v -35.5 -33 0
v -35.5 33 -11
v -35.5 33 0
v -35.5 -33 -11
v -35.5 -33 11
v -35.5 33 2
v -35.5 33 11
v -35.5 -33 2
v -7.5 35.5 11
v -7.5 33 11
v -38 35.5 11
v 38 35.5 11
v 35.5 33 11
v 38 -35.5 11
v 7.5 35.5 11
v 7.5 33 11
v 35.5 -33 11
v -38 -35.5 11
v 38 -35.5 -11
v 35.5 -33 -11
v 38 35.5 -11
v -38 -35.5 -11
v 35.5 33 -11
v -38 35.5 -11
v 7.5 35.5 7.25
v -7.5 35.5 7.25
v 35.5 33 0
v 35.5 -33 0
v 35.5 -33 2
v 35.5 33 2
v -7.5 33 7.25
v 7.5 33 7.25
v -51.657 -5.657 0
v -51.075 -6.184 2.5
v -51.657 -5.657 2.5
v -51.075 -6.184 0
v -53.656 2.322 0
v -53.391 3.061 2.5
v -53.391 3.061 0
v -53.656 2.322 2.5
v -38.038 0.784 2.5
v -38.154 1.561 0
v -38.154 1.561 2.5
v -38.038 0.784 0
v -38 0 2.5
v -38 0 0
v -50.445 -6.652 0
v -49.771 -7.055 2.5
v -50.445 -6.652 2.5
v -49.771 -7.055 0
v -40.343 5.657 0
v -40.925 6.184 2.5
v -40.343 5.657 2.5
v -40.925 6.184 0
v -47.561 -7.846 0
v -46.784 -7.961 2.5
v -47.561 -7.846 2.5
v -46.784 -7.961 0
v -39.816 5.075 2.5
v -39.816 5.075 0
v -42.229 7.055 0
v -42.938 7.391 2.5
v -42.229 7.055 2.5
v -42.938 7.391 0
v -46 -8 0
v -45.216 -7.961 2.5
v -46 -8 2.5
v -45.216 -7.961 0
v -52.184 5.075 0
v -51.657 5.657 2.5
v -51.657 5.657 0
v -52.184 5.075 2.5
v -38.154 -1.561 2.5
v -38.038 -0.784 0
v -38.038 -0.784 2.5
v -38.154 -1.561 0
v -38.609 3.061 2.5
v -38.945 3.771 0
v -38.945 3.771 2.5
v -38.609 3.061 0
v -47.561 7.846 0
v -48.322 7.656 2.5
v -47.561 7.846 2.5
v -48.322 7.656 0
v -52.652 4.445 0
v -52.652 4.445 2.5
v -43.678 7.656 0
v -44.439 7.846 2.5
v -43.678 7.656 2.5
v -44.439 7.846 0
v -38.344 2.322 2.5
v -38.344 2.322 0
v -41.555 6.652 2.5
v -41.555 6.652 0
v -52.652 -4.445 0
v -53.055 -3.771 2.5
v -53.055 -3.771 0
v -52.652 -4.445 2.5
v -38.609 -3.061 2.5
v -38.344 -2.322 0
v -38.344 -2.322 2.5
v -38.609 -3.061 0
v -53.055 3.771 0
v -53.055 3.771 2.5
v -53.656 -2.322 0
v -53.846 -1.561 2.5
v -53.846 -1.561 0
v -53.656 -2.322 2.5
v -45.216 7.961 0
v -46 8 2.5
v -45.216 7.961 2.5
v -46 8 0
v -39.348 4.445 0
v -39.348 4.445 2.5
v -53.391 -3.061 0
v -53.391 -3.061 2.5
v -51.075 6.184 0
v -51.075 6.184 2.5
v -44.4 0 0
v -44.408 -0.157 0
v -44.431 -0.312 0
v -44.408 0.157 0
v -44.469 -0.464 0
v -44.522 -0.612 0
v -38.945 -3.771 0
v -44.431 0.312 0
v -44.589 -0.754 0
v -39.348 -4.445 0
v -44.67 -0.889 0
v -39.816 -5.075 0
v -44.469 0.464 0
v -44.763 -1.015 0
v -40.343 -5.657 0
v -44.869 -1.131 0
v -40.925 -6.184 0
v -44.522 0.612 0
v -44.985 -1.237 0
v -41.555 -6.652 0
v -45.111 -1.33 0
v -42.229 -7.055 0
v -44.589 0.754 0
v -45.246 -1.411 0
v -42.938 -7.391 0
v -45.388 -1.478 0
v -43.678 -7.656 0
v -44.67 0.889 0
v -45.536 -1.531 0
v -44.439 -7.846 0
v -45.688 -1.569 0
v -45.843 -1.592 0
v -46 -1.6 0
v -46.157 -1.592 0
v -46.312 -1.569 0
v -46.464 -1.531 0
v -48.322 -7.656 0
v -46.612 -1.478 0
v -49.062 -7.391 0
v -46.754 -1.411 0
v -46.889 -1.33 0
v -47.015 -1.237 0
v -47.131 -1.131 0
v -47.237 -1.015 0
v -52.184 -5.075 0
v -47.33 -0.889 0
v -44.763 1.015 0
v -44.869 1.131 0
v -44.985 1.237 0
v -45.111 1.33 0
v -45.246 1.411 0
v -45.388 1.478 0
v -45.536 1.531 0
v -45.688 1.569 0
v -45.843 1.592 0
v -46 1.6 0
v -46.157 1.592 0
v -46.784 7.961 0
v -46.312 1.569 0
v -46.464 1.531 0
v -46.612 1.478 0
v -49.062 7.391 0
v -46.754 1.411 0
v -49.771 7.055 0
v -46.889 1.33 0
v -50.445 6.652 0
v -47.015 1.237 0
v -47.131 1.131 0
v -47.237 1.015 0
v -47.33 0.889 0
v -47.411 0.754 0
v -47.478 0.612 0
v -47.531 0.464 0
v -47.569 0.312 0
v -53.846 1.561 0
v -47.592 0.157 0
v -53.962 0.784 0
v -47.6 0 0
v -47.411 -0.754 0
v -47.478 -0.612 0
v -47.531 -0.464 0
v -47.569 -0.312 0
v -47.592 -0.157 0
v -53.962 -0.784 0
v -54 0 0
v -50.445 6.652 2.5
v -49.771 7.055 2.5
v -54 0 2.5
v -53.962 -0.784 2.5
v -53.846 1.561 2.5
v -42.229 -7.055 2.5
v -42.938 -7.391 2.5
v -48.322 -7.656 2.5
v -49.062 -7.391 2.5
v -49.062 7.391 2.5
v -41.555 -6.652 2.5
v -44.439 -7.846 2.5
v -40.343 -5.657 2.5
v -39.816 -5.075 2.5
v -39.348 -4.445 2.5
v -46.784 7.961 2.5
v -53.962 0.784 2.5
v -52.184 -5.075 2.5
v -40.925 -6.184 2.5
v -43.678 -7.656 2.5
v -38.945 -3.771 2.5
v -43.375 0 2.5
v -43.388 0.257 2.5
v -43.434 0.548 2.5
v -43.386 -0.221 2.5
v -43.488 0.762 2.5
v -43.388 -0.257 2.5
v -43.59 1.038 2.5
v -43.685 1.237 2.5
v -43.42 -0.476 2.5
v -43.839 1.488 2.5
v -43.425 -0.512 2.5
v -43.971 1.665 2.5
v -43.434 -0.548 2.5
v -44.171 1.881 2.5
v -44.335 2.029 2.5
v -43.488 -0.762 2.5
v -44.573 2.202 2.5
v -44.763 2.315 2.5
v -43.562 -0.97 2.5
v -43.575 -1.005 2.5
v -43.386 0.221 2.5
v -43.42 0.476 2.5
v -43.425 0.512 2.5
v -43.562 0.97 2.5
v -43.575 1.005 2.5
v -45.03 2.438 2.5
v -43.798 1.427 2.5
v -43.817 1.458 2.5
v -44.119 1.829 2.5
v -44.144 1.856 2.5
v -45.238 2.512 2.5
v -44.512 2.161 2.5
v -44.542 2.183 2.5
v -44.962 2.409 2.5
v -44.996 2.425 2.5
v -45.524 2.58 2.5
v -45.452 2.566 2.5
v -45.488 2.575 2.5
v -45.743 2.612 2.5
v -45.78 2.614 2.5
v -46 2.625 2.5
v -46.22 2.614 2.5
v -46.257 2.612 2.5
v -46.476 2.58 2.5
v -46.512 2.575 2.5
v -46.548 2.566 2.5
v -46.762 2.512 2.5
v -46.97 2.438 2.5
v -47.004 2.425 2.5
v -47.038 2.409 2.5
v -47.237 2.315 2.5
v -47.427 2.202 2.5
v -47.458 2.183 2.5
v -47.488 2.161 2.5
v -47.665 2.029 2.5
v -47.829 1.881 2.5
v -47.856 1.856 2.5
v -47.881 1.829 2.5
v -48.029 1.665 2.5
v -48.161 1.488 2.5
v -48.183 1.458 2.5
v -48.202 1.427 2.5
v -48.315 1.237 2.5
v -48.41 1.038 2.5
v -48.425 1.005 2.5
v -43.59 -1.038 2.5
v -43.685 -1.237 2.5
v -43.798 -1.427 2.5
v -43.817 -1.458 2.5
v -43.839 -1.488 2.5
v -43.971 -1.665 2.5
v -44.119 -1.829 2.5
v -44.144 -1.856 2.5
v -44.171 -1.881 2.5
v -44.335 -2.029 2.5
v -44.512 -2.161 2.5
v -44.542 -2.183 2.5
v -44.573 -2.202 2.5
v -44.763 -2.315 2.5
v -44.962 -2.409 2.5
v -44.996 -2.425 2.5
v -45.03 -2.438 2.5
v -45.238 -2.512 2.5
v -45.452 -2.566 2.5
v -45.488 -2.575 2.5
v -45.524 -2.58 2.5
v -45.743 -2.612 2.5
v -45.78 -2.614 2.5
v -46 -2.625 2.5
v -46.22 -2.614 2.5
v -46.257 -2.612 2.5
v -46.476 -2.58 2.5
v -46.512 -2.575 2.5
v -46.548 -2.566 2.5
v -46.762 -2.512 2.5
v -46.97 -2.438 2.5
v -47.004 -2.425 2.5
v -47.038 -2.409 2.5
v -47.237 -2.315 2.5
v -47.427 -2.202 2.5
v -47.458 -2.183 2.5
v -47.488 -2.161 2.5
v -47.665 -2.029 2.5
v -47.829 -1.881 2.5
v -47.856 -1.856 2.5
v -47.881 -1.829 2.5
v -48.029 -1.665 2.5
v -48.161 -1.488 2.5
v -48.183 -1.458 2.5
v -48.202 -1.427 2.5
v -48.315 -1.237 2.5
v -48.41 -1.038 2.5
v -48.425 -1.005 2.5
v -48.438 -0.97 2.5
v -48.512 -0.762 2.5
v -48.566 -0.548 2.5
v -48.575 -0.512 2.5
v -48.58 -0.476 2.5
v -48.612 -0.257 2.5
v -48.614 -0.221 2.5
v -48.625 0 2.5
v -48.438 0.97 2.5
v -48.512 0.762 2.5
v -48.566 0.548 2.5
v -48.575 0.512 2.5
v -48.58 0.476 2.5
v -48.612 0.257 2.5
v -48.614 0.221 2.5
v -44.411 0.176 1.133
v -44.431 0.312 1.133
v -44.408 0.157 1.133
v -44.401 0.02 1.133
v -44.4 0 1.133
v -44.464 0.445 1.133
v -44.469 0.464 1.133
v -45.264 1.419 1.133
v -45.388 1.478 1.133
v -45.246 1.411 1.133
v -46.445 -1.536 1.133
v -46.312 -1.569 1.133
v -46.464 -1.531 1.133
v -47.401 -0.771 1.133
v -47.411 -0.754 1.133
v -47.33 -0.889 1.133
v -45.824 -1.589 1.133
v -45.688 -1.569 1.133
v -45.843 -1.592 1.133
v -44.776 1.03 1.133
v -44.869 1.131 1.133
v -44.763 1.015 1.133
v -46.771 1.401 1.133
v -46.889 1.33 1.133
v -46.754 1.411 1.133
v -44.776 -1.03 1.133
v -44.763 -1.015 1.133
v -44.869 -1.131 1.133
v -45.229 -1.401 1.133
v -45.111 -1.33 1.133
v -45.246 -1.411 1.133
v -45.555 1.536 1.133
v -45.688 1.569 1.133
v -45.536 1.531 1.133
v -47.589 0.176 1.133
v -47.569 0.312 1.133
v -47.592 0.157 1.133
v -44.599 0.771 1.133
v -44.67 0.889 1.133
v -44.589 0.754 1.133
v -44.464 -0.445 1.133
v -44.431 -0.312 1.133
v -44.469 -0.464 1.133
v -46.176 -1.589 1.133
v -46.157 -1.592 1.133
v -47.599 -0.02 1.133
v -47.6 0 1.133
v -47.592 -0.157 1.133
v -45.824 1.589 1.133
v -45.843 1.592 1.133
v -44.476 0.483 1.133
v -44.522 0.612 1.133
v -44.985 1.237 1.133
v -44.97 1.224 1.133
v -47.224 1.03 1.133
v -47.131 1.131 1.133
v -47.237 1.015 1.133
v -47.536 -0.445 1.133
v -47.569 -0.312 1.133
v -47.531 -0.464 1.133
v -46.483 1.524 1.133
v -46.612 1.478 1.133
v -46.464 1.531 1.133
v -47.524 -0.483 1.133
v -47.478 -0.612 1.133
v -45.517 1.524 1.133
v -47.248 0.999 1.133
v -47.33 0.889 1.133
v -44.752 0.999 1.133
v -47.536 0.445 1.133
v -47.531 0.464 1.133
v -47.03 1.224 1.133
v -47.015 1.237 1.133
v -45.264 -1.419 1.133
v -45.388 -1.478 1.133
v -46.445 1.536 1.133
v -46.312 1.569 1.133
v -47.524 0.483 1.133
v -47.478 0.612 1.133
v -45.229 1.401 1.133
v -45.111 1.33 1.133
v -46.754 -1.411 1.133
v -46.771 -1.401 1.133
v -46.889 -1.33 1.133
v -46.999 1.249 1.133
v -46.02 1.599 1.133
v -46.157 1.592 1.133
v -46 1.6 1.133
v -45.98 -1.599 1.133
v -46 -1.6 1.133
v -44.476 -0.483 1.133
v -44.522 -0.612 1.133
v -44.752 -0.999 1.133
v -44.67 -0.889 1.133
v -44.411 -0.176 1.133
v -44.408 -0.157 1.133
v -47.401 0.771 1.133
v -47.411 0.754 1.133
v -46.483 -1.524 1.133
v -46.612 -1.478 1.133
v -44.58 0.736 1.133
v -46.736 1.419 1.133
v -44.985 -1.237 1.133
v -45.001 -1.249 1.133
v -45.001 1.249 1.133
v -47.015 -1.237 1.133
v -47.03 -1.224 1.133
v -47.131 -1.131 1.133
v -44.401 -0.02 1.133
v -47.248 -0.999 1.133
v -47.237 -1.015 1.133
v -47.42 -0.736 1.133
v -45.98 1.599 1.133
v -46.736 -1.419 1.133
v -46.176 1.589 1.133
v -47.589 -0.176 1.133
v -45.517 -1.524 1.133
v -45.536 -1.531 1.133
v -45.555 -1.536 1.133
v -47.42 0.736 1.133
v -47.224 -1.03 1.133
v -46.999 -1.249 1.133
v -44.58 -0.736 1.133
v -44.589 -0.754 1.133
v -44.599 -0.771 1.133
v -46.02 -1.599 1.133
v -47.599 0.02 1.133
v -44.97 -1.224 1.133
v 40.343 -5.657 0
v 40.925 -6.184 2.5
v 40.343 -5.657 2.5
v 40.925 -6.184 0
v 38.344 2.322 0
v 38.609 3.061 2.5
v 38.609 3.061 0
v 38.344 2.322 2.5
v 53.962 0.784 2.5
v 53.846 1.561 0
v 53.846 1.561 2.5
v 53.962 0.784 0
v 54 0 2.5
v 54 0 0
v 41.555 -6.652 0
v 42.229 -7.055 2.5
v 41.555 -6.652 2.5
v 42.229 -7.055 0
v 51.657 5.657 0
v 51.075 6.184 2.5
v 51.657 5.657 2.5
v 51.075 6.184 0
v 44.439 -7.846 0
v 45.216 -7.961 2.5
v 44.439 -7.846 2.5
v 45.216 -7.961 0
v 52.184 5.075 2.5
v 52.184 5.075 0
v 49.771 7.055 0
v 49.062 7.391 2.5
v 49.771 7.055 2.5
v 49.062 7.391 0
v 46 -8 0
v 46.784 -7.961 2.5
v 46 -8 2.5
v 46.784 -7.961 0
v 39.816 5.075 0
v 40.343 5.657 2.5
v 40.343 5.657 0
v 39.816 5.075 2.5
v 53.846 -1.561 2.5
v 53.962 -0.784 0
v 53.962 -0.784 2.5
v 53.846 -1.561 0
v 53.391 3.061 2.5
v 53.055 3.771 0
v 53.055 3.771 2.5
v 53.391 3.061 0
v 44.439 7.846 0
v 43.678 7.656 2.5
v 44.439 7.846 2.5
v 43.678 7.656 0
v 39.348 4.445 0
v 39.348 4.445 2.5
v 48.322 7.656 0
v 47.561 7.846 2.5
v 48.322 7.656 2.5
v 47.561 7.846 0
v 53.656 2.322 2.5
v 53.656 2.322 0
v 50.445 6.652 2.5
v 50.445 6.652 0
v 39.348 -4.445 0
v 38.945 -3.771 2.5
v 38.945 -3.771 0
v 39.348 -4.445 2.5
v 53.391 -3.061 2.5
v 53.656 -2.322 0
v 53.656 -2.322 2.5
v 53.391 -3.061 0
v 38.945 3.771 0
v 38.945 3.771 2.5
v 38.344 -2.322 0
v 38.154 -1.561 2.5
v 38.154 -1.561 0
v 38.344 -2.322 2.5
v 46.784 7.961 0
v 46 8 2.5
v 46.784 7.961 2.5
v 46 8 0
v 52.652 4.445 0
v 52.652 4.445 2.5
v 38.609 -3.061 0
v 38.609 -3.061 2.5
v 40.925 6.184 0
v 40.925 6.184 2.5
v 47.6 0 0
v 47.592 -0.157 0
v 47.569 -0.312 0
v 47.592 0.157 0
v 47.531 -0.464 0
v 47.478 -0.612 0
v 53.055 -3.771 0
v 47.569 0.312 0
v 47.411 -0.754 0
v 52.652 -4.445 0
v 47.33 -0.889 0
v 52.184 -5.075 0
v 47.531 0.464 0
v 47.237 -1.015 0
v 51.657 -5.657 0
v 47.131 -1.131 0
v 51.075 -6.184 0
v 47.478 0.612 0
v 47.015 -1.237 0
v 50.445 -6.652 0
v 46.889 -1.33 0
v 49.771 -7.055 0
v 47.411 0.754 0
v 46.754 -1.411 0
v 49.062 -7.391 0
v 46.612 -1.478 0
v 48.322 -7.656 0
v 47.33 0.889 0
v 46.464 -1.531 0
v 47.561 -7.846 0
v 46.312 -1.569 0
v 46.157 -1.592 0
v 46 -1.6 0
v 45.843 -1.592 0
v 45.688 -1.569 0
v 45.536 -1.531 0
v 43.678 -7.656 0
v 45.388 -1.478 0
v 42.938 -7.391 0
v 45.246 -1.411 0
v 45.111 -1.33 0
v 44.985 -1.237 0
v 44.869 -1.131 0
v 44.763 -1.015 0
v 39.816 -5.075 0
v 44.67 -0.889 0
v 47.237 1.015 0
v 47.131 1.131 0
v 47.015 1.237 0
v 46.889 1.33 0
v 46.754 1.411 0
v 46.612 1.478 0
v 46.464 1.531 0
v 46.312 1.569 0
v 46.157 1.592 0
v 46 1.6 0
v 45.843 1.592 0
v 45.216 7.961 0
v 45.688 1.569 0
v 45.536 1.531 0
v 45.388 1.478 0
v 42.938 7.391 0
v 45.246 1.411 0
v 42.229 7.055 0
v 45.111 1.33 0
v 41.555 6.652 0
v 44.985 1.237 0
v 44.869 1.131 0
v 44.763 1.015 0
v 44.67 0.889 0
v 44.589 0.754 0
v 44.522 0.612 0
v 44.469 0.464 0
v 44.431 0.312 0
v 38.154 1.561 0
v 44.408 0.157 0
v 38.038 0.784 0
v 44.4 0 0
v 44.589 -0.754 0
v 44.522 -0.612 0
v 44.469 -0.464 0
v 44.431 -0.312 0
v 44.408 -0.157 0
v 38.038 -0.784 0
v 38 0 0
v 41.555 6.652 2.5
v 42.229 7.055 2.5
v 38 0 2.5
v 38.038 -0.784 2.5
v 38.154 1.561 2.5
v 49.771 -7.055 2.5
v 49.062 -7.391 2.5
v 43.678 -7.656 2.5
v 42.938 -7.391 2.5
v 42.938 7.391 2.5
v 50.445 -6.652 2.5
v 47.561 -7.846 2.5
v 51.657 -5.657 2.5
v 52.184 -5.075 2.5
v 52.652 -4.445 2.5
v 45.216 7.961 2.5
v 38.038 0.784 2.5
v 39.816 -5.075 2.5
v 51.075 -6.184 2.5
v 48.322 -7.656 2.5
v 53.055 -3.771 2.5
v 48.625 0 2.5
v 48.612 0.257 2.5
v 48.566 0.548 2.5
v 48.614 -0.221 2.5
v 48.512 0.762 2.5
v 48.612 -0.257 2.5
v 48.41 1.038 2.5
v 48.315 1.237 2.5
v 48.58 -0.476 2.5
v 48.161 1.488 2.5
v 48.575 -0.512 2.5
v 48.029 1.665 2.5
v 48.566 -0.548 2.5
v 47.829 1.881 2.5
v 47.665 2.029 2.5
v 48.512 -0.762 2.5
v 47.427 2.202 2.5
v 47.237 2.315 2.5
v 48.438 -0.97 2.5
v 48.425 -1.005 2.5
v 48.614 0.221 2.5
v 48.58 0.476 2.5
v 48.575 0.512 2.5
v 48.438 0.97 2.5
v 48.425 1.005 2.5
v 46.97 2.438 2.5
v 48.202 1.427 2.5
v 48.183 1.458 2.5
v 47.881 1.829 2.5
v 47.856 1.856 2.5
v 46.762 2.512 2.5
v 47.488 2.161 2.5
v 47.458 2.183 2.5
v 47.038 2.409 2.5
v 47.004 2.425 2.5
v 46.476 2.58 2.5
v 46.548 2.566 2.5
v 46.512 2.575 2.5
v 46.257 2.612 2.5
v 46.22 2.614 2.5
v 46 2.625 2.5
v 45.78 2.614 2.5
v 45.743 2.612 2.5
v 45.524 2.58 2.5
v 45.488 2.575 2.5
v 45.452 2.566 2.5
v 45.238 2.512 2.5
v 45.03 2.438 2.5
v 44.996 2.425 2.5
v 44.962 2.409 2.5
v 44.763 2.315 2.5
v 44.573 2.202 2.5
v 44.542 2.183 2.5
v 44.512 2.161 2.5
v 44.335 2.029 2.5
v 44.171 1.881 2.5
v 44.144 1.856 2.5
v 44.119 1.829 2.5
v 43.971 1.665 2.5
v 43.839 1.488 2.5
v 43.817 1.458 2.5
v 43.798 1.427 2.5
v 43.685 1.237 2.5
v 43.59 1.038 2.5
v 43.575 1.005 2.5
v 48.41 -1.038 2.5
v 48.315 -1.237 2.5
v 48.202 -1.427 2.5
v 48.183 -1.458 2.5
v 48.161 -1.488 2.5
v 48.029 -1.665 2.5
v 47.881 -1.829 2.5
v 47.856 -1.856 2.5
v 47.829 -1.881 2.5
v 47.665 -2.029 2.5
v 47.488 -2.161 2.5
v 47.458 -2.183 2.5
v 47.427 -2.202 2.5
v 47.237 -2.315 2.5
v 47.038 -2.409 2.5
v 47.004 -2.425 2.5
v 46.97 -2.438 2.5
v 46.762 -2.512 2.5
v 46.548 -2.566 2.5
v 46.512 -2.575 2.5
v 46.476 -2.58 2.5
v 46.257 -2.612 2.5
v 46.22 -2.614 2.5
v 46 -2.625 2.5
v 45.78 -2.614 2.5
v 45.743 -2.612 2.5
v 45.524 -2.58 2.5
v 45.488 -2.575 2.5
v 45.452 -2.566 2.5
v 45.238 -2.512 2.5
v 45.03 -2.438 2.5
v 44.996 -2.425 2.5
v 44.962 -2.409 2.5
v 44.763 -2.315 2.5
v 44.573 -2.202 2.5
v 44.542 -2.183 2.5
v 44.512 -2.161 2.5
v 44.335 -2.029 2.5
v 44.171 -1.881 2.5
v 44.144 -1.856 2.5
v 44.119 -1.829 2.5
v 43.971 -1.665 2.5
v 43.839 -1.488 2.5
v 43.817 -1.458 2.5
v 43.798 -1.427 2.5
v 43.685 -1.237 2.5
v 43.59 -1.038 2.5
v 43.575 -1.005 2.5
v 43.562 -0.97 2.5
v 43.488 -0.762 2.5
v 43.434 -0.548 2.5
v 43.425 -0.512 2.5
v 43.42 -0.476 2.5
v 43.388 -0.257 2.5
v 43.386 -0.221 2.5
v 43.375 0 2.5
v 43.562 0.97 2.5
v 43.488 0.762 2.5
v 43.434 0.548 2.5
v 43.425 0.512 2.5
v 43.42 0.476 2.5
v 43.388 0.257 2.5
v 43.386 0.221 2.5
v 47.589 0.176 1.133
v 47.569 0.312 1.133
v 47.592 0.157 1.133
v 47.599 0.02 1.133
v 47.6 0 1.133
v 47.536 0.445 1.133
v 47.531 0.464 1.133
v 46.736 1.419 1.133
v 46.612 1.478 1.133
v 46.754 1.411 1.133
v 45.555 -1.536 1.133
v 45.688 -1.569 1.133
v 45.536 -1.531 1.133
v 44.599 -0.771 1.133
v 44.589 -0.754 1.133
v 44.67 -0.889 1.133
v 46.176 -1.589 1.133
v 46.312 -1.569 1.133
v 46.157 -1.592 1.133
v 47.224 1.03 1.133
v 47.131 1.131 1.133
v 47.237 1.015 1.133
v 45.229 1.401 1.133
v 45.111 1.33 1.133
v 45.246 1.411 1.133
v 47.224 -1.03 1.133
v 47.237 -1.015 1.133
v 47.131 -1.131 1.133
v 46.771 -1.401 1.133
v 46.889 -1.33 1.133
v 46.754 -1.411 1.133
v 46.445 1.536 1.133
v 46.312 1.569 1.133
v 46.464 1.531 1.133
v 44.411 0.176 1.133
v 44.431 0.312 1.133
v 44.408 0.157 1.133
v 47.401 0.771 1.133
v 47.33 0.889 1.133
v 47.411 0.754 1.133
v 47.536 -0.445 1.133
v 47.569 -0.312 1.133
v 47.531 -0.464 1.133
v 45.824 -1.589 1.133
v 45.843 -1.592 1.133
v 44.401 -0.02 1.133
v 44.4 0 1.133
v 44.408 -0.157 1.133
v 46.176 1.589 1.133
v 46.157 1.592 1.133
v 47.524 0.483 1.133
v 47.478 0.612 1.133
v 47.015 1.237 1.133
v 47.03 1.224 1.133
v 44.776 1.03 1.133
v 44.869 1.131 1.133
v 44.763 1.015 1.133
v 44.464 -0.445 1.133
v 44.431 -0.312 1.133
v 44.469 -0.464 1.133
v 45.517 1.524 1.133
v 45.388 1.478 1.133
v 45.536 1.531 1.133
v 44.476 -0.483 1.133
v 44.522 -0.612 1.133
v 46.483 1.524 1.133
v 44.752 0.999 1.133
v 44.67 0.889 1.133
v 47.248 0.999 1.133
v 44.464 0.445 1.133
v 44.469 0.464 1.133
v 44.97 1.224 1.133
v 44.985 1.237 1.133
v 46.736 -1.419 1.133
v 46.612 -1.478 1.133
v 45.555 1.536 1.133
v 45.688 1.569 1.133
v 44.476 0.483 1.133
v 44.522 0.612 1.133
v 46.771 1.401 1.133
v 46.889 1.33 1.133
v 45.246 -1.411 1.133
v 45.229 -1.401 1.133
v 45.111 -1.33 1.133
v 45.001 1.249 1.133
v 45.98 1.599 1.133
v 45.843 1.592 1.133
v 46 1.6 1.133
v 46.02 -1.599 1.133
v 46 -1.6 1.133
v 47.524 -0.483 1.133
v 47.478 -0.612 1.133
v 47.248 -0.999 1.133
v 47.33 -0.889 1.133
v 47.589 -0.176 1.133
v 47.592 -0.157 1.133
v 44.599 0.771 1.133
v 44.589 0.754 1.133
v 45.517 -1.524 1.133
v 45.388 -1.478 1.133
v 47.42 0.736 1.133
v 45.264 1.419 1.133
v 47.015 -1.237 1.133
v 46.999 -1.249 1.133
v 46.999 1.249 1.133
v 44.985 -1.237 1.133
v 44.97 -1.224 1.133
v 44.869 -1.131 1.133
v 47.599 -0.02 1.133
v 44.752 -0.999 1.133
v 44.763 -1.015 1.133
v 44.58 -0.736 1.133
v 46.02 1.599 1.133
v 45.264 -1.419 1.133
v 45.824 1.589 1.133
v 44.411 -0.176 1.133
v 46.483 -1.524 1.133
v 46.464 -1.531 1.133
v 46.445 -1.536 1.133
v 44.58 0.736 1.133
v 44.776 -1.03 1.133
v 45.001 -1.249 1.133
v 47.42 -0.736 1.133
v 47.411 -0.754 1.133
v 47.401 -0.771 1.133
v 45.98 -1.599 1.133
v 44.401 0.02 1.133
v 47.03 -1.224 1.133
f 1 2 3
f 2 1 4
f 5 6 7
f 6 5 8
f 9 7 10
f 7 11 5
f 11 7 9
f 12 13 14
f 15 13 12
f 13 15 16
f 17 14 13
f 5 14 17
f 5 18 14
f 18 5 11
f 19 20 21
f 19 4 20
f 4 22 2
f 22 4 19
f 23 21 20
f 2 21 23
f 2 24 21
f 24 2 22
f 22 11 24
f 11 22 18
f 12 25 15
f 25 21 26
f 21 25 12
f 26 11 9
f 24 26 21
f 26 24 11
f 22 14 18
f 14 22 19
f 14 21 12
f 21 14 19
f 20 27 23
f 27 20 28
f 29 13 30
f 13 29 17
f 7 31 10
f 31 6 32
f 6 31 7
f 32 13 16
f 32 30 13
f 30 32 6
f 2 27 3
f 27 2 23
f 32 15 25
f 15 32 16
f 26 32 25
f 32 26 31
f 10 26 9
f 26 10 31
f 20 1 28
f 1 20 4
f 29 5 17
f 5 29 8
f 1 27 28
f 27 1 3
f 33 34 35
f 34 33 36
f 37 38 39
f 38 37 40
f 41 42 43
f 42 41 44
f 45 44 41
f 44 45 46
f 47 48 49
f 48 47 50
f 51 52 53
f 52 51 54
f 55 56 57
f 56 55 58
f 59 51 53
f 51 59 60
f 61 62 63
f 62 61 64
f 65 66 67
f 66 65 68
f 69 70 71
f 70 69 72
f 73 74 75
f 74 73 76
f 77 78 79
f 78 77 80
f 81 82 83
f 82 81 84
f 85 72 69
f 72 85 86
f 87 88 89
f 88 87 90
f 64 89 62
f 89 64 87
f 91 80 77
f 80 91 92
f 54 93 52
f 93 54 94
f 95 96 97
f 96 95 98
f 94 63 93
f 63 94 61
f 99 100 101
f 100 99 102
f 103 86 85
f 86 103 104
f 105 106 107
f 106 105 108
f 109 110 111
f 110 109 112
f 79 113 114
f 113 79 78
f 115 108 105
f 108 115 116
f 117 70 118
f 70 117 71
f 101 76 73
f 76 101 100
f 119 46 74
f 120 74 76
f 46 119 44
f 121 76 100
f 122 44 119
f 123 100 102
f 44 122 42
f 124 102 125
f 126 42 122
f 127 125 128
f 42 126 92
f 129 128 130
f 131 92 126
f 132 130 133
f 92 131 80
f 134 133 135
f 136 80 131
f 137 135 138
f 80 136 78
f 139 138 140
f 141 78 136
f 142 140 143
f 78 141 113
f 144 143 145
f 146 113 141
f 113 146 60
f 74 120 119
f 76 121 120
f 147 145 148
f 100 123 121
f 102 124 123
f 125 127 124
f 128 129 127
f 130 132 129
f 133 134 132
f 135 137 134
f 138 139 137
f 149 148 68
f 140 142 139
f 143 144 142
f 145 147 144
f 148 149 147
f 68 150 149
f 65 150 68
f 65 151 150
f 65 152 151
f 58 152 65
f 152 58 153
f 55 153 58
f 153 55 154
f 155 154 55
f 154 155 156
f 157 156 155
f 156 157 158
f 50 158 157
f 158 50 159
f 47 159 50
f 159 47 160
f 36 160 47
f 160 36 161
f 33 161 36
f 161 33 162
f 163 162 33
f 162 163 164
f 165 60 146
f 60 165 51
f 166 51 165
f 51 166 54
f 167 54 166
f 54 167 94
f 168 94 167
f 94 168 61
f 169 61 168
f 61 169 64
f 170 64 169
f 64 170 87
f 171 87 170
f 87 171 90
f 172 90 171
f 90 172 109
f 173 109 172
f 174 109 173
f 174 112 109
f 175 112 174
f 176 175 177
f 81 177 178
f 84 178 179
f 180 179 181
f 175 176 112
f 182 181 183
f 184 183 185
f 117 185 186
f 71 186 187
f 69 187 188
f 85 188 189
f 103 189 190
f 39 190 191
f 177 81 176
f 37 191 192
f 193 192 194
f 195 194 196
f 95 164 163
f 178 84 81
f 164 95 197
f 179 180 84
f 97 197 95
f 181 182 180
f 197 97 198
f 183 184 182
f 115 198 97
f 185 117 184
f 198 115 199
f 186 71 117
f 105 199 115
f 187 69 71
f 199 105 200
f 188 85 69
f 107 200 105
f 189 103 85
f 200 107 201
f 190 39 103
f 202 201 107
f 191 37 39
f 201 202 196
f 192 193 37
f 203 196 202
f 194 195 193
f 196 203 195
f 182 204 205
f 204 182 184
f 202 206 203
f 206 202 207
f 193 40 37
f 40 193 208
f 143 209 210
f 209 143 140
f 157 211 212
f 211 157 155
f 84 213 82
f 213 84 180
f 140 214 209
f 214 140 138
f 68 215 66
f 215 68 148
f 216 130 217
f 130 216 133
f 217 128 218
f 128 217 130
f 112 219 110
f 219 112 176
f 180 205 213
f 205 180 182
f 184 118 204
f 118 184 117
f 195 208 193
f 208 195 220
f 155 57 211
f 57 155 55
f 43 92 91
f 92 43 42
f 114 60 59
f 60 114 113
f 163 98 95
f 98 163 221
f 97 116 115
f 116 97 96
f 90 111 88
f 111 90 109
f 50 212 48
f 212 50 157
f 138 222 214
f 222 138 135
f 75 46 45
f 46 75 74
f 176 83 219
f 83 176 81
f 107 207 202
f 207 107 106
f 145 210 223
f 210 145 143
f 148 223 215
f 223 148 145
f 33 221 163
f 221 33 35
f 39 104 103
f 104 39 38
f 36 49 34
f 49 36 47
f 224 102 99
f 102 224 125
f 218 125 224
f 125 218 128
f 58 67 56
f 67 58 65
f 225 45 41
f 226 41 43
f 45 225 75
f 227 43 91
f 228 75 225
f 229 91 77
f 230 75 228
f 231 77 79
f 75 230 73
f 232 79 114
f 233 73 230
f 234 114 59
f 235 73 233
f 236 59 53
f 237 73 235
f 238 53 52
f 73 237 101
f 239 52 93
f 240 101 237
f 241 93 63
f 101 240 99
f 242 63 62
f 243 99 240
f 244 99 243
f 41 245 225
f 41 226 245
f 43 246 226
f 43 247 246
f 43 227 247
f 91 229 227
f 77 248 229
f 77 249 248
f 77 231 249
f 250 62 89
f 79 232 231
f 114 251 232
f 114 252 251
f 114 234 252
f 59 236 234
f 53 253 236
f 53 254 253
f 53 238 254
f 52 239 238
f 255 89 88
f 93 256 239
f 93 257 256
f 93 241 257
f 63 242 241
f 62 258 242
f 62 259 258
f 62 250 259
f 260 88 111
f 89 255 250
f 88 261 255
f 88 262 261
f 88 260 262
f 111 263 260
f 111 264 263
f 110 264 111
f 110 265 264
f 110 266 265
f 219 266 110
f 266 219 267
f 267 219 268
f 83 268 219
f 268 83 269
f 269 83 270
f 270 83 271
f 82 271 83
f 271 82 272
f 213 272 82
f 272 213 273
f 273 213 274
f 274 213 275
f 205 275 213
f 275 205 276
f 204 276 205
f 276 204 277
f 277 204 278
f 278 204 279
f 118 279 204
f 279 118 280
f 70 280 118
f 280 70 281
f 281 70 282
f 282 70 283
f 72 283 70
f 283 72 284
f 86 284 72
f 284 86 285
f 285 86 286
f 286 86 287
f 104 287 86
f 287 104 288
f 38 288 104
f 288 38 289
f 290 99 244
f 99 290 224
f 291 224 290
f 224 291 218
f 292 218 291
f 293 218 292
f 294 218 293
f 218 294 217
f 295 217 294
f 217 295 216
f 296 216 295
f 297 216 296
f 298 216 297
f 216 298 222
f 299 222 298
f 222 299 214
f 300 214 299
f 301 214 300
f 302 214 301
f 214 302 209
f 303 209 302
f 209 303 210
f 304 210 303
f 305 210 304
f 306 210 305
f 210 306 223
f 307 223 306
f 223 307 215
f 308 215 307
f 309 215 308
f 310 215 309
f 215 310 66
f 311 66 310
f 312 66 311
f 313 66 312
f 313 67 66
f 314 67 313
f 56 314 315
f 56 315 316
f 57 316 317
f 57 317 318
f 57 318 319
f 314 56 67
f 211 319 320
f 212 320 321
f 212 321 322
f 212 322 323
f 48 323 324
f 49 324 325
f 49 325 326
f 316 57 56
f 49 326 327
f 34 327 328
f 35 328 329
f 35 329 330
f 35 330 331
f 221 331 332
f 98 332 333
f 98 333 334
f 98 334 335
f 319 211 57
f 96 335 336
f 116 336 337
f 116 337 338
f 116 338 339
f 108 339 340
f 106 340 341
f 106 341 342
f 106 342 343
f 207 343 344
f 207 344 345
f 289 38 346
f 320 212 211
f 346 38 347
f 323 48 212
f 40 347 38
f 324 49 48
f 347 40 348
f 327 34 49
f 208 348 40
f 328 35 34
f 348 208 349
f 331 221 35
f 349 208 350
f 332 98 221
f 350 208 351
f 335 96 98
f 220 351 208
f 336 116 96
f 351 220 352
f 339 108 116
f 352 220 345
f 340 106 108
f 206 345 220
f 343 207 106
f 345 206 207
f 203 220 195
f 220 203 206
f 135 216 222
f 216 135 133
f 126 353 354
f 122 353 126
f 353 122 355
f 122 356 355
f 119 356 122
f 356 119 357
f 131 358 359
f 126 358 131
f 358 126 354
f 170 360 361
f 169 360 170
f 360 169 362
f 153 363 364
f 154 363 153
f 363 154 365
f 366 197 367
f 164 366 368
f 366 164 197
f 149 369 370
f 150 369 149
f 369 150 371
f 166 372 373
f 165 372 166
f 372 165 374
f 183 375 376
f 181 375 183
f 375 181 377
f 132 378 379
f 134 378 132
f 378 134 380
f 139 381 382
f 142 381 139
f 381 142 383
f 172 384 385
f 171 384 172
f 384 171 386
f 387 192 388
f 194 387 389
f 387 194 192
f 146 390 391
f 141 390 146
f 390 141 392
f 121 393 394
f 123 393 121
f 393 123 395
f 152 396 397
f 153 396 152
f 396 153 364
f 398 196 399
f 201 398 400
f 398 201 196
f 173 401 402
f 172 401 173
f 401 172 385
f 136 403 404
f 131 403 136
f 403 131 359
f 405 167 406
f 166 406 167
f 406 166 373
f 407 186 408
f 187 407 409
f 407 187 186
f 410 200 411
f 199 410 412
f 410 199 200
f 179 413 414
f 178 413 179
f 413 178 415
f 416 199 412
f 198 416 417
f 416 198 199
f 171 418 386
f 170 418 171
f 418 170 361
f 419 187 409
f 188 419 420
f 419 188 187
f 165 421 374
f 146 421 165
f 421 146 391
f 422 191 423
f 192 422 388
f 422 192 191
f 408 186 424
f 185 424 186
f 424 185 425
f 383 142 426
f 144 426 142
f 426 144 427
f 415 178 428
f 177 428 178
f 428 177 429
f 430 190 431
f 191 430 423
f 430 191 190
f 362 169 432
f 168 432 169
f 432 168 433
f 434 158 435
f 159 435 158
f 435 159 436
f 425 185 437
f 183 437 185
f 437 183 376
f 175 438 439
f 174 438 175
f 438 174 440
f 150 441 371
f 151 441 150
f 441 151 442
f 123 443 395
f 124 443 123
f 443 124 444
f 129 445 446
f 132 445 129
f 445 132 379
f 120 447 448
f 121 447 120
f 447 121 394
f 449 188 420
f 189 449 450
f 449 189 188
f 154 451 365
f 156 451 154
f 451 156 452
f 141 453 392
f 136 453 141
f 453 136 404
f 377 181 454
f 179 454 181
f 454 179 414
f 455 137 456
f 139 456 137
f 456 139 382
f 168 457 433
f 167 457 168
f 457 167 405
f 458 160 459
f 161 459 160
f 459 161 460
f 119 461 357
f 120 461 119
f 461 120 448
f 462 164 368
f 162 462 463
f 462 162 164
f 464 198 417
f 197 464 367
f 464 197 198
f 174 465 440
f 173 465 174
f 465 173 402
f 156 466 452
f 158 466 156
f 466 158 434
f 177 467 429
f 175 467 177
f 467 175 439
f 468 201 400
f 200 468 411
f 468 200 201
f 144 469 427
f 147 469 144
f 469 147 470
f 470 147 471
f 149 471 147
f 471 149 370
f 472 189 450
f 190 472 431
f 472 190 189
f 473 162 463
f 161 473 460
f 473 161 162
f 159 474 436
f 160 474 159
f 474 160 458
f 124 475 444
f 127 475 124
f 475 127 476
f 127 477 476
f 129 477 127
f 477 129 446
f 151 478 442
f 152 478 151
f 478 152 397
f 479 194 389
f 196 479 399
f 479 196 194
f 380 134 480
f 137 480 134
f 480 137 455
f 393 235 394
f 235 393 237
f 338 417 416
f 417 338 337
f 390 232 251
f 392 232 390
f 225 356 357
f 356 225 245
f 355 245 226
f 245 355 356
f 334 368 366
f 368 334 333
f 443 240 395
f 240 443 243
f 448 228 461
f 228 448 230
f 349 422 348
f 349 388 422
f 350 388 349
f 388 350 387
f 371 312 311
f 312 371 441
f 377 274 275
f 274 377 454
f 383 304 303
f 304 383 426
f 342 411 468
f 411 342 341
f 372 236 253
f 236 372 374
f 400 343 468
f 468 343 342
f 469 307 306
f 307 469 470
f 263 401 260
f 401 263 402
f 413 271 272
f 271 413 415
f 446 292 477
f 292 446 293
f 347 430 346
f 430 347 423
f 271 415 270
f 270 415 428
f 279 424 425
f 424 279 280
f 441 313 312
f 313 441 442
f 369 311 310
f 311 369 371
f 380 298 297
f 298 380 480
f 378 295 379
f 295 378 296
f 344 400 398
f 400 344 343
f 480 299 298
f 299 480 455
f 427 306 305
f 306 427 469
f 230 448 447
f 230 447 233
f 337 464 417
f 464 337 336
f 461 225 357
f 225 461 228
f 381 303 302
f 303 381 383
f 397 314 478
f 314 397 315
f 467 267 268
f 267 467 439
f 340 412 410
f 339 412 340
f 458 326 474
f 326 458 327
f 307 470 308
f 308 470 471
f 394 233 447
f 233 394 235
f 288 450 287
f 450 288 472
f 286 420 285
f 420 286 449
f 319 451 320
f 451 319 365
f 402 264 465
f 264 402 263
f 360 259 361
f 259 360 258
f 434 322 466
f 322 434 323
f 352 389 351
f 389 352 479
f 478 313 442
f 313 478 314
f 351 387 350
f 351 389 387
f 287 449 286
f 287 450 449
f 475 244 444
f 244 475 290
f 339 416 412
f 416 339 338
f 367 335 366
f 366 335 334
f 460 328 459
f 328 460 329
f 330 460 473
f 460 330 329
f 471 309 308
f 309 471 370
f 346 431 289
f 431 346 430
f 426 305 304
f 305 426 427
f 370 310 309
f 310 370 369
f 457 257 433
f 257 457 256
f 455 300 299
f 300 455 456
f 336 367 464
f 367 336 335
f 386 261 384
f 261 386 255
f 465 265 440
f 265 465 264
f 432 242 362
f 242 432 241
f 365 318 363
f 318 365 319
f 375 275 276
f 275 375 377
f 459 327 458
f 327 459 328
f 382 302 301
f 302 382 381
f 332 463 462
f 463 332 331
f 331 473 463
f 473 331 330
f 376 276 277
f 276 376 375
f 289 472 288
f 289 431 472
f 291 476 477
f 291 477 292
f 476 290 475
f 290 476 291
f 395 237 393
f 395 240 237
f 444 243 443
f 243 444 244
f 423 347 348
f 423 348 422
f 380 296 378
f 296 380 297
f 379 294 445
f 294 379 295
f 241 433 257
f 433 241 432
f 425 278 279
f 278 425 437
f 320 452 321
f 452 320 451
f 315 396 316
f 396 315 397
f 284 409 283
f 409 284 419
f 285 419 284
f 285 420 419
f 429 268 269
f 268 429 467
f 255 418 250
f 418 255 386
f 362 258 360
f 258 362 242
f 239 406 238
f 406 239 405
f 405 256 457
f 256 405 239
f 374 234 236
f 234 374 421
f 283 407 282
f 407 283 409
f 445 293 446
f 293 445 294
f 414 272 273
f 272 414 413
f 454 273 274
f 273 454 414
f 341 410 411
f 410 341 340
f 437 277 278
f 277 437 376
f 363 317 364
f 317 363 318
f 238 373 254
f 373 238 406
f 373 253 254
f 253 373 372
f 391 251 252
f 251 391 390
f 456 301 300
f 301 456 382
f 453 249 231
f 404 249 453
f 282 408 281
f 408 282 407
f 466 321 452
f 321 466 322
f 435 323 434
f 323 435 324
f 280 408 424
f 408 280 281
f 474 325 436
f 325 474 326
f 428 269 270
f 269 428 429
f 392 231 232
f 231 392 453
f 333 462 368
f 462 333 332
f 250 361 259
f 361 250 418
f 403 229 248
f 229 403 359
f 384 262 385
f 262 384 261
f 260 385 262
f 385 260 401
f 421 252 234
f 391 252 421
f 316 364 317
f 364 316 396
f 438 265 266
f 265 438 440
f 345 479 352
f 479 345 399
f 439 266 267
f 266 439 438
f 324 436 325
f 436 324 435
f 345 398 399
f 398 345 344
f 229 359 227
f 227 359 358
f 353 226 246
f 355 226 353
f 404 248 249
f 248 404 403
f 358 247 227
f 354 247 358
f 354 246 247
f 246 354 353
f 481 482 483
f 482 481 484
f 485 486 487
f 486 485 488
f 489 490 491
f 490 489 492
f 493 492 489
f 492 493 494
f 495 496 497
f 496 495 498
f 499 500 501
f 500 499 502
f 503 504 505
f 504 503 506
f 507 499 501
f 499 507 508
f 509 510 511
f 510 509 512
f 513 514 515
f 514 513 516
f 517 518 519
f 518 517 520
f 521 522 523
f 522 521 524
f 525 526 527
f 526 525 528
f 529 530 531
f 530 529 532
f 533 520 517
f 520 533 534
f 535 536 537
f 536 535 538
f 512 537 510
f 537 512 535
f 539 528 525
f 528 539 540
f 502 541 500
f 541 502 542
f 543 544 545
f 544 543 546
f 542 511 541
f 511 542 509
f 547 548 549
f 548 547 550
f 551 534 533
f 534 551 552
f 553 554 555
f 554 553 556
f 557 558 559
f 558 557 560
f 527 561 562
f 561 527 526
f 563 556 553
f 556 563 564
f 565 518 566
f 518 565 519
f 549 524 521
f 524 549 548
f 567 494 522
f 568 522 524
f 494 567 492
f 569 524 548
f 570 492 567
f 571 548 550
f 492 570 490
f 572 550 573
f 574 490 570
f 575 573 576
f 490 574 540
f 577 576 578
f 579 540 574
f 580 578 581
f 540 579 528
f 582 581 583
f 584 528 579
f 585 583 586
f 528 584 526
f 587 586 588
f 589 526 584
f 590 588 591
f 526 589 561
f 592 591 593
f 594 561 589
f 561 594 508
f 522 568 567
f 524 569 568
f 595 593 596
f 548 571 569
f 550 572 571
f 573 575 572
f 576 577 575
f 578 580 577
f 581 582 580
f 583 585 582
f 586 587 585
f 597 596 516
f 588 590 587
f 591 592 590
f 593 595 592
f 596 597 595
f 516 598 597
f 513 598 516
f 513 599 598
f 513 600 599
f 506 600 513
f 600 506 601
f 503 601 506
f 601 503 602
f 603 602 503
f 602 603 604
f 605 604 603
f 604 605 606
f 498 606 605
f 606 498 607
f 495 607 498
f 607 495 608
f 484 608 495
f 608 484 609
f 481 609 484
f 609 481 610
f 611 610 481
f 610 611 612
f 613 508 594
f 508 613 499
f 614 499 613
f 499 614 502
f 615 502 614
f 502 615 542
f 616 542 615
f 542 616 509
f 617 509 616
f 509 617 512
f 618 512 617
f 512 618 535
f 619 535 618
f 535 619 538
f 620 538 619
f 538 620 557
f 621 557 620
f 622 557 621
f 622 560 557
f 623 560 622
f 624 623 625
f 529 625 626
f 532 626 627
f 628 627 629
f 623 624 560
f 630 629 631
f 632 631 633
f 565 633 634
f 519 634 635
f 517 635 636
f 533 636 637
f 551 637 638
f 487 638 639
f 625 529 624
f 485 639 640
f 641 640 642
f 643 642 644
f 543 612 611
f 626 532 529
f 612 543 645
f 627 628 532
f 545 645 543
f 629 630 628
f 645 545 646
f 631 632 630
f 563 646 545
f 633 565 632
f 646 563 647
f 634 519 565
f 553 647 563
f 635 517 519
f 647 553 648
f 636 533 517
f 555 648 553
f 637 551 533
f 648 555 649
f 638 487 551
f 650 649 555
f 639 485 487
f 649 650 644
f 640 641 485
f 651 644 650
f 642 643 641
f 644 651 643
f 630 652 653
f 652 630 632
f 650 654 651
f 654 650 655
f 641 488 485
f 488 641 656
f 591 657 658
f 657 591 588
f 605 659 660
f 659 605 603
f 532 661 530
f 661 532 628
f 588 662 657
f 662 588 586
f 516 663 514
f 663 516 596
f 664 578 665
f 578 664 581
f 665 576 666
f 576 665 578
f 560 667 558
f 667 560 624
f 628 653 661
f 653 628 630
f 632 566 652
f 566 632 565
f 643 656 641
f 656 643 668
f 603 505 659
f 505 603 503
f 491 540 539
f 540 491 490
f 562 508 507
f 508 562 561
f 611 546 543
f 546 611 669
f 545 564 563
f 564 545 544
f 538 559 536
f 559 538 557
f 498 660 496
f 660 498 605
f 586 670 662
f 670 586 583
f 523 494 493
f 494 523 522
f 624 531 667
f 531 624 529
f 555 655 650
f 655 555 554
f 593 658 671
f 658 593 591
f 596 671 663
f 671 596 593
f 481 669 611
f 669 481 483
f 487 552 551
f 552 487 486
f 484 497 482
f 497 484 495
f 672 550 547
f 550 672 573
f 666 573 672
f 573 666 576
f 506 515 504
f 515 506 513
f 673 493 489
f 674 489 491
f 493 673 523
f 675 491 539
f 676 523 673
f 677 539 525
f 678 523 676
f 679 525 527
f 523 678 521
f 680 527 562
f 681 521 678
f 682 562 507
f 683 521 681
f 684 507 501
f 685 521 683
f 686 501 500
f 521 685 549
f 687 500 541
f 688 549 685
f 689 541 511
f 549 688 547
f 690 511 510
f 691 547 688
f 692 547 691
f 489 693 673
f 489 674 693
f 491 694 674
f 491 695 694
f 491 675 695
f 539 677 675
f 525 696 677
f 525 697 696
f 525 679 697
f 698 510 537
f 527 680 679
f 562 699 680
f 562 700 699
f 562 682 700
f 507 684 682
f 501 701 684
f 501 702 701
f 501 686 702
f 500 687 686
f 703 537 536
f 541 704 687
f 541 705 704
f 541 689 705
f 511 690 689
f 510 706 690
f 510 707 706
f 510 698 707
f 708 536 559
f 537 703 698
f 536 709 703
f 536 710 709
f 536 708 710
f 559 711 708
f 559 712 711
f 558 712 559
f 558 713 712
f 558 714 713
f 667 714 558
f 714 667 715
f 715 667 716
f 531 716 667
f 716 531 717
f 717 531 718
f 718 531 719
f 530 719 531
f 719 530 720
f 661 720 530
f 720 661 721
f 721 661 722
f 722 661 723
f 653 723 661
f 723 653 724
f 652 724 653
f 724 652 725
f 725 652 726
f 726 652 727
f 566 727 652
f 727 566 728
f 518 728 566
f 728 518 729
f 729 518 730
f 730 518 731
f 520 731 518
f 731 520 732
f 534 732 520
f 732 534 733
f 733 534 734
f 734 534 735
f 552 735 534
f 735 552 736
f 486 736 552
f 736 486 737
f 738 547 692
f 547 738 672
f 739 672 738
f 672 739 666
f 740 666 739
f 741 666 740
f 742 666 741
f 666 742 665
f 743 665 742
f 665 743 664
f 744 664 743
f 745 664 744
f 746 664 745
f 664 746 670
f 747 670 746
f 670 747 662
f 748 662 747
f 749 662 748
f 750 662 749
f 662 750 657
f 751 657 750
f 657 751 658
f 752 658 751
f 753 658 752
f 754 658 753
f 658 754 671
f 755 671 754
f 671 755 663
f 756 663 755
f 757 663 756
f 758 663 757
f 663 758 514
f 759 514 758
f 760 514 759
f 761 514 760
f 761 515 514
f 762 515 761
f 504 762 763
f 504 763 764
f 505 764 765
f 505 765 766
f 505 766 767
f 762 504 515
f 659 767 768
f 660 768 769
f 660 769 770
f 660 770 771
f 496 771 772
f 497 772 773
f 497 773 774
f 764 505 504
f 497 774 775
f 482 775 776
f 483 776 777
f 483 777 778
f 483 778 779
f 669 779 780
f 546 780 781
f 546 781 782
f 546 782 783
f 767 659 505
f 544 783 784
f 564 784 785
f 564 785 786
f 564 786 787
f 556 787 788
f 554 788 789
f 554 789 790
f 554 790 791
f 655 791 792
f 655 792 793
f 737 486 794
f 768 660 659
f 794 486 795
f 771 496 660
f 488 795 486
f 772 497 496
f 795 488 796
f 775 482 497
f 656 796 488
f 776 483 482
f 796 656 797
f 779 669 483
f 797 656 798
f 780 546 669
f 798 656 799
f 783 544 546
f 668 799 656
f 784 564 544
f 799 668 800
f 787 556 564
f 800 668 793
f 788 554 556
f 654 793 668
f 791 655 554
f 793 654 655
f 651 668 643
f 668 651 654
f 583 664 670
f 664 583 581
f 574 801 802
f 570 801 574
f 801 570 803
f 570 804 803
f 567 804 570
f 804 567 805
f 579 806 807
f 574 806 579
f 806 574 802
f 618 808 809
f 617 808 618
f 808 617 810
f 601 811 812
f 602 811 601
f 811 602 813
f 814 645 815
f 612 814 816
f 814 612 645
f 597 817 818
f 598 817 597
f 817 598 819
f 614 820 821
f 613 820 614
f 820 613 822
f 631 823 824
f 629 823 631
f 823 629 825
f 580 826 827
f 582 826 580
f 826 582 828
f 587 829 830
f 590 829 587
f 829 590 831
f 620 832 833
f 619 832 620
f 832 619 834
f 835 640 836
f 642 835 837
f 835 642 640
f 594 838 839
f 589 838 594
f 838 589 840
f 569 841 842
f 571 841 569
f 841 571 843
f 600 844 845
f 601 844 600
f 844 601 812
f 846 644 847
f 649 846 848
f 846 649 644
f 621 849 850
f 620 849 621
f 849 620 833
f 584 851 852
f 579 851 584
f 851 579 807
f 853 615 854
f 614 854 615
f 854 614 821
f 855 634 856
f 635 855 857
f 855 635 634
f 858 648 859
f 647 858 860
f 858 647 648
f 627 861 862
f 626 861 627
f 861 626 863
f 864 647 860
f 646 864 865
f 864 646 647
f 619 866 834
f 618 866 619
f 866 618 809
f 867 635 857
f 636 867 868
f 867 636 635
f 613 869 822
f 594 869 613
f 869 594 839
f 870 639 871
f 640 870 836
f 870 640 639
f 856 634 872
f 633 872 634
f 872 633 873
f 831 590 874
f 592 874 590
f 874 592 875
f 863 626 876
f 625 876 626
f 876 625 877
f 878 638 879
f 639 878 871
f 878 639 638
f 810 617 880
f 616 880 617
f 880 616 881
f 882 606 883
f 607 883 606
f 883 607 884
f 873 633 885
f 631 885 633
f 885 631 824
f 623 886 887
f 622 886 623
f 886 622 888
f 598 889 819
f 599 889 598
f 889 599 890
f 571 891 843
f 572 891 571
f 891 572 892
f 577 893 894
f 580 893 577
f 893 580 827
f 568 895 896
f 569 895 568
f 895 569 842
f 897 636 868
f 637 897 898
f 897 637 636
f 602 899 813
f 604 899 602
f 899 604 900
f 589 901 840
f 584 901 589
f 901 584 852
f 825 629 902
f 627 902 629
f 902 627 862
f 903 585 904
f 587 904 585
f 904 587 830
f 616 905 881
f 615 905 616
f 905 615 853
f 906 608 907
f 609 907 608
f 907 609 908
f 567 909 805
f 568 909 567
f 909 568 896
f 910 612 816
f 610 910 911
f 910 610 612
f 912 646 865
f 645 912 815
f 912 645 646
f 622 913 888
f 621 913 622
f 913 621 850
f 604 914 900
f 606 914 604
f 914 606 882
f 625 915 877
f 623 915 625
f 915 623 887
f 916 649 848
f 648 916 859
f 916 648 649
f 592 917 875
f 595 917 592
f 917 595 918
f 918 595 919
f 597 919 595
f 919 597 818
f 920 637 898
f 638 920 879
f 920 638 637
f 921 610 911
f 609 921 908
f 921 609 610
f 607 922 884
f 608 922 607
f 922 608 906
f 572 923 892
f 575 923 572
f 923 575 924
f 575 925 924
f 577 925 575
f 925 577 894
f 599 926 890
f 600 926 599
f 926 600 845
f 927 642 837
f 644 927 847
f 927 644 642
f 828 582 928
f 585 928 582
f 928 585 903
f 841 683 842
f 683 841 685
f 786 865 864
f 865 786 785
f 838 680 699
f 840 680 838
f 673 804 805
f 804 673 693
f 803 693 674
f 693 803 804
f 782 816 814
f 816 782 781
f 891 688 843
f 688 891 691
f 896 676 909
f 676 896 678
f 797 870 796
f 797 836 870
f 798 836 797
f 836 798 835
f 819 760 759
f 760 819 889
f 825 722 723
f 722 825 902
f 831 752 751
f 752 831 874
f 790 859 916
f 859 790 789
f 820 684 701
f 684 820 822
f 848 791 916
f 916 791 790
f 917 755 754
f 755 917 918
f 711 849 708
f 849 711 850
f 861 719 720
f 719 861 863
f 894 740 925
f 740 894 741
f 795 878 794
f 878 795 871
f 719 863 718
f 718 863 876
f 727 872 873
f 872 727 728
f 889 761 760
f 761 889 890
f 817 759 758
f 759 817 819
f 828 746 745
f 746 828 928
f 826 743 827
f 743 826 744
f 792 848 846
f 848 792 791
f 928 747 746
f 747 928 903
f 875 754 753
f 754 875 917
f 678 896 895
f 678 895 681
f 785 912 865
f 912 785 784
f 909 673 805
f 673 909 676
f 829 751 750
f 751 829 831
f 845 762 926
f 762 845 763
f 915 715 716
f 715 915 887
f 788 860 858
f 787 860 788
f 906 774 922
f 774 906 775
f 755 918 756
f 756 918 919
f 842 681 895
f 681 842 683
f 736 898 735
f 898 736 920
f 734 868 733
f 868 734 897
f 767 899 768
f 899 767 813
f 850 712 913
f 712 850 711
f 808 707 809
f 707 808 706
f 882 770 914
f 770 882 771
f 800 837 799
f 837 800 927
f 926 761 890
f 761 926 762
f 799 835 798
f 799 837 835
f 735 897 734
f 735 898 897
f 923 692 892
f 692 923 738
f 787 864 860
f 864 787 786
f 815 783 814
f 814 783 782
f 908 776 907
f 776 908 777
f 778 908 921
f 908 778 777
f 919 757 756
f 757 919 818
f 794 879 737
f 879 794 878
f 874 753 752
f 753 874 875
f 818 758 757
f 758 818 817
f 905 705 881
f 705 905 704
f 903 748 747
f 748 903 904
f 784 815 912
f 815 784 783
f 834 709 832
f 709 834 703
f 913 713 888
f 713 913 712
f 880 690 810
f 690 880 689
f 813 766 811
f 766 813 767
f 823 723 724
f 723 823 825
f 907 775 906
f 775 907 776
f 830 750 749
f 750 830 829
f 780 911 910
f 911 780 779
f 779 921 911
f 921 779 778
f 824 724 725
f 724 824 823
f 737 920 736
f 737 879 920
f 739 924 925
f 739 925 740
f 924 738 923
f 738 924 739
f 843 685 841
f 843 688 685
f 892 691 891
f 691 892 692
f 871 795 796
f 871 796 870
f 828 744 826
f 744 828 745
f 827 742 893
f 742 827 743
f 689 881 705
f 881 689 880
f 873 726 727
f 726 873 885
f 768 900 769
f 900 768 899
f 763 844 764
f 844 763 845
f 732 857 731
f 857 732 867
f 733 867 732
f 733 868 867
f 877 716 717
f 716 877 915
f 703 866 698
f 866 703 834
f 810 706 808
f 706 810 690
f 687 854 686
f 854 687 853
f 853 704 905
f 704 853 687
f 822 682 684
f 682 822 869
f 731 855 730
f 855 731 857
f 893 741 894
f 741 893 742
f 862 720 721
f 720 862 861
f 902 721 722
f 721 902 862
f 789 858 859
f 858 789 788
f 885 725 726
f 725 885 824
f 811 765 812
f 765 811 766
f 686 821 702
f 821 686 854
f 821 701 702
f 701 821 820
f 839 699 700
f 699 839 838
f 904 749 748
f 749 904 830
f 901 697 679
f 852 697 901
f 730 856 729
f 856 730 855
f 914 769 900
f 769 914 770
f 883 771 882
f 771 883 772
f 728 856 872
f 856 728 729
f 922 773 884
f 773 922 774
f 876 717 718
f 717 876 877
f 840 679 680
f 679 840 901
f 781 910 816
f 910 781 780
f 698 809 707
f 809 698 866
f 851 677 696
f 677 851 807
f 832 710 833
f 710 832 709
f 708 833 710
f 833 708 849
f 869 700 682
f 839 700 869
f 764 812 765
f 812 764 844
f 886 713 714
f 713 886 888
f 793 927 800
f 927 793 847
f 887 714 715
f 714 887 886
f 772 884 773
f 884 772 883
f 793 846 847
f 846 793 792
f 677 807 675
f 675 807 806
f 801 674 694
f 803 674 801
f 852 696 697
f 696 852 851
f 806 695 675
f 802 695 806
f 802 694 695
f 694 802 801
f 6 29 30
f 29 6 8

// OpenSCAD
// ============================================================================
// Luna's Baby Mobile - Battery Case Mount
// ============================================================================
// Housing/bracket for 4xAA Battery Case with PH2.0 Connector (IA003)
// Dimensions: 70×65×19mm
// ============================================================================

include <config.scad>

// ----------------------------------------------------------------------------
// BATTERY MOUNT CONFIGURATION
// ----------------------------------------------------------------------------

// Mount style options
mount_style = "cradle";  // "cradle", "clip", or "enclosed"

// Internal dimensions (battery case + clearance)
case_length = battery_case_length + battery_mount_clearance * 2;
case_width = battery_case_width + battery_mount_clearance * 2;
case_height = battery_case_height + battery_mount_clearance;

// ----------------------------------------------------------------------------
// BATTERY CRADLE MOUNT
// ----------------------------------------------------------------------------
// Open cradle that holds the battery case with retention clips

module battery_cradle_mount() {
    wall = battery_mount_wall;
    tab_w = battery_mount_tab_width;
    lip_height = 5;
    
    difference() {
        union() {
            // Base plate
            rounded_rect(case_length + wall * 2, case_width + wall * 2, wall, 3);
            
            // Side walls (partial - open for access)
            for (x = [-1, 1]) {
                translate([x * (case_length/2 + wall/2), 0, 0])
                cube([wall, case_width + wall * 2, case_height + wall], center = true);
            }
            
            // End walls with retention lips
            for (y = [-1, 1]) {
                translate([0, y * (case_width/2 + wall/2), 0])
                difference() {
                    // Wall
                    cube([case_length + wall * 2, wall, case_height + wall], center = true);
                    
                    // Wire exit notch (one end only)
                    if (y > 0) {
                        translate([0, 0, case_height/2 + wall])
                        cube([15, wall + 2, 10], center = true);
                    }
                }
                
                // Retention lips
                translate([0, y * (case_width/2 - 2), case_height/2 + wall/2])
                rotate([0, 0, y > 0 ? 0 : 180])
                retention_lip(case_length - 20, lip_height);
            }
            
            // Corner retention clips
            for (x = [-1, 1]) {
                for (y = [-1, 1]) {
                    translate([x * (case_length/2 - 10), y * (case_width/2 - 5), 0])
                    corner_clip(case_height);
                }
            }
            
            // Mounting tabs
            for (x = [-1, 1]) {
                translate([x * (case_length/2 + wall + 8), 0, 0])
                mounting_tab();
            }
        }
        
        // Battery case pocket
        translate([0, 0, wall + case_height/2])
        cube([case_length, case_width, case_height + 1], center = true);
    }
}

// Retention lip module
module retention_lip(length, height) {
    rotate([45, 0, 0])
    cube([length, 2, 2], center = true);
}

// Corner retention clip
module corner_clip(height) {
    clip_w = 8;
    clip_d = 5;
    lip = 2;
    
    translate([0, 0, height/2])
    difference() {
        cube([clip_w, clip_d, height], center = true);
        translate([0, -lip, lip])
        cube([clip_w + 1, clip_d, height], center = true);
    }
}

// Mounting tab with screw hole
module mounting_tab() {
    tab_d = 16;
    tab_h = battery_mount_wall;
    
    difference() {
        cylinder(d = tab_d, h = tab_h);
        translate([0, 0, -1])
        cylinder(d = 3 + tolerance, h = tab_h + 2);
        // Countersink
        translate([0, 0, tab_h - 1.5])
        cylinder(d1 = 3, d2 = 6, h = 2);
    }
}

// Helper for rounded rectangle
module rounded_rect(w, d, h, r) {
    hull() {
        for (x = [-w/2 + r, w/2 - r]) {
            for (y = [-d/2 + r, d/2 - r]) {
                translate([x, y, 0])
                cylinder(r = r, h = h);
            }
        }
    }
}

// ----------------------------------------------------------------------------
// BATTERY CLIP MOUNT (Alternative style)
// ----------------------------------------------------------------------------
// Minimal clip-style mount for space-constrained installations

module battery_clip_mount() {
    wall = battery_mount_wall;
    clip_height = 12;
    
    // Base plate
    rounded_rect(case_length + wall * 2, case_width + wall * 2, wall, 3);
    
    // End clips
    for (y = [-1, 1]) {
        translate([0, y * (case_width/2 + wall/2), wall])
        end_clip(case_length - 10, clip_height);
    }
    
    // Corner posts
    for (x = [-1, 1]) {
        for (y = [-1, 1]) {
            translate([x * (case_length/2 - 5), y * (case_width/2 - 5), wall])
            cylinder(d = 6, h = 8);
        }
    }
}

module end_clip(width, height) {
    // Vertical wall
    translate([0, 0, height/2])
    cube([width, battery_mount_wall, height], center = true);
    
    // Inward lip
    translate([0, -2, height - 1])
    cube([width, 4, 2], center = true);
}

// ----------------------------------------------------------------------------
// BATTERY ENCLOSED MOUNT (Full enclosure)
// ----------------------------------------------------------------------------
// Fully enclosed battery housing with lid

module battery_enclosed_mount() {
    wall = battery_mount_wall;
    
    // Main enclosure
    difference() {
        // Outer shell
        rounded_rect(case_length + wall * 2, case_width + wall * 2, case_height + wall * 2, 5);
        
        // Battery pocket
        translate([0, 0, wall])
        rounded_rect(case_length, case_width, case_height + wall + 1, 3);
        
        // Wire exit hole
        translate([0, case_width/2 + wall, wall + case_height/2])
        rotate([90, 0, 0])
        cylinder(d = 8, h = wall + 2);
        
        // Lid screw holes
        for (x = [-1, 1]) {
            for (y = [-1, 1]) {
                translate([x * (case_length/2 - 5), y * (case_width/2 - 5), -1])
                cylinder(d = 2.5, h = case_height + wall * 2 + 2);
            }
        }
    }
}

module battery_enclosure_lid() {
    wall = battery_mount_wall;
    lid_h = wall;
    
    difference() {
        union() {
            // Main lid
            rounded_rect(case_length + wall * 2, case_width + wall * 2, lid_h, 5);
            
            // Alignment lip
            translate([0, 0, lid_h])
            rounded_rect(case_length - 1, case_width - 1, 2, 2);
        }
        
        // Screw holes
        for (x = [-1, 1]) {
            for (y = [-1, 1]) {
                translate([x * (case_length/2 - 5), y * (case_width/2 - 5), -1])
                cylinder(d = 3.2, h = lid_h + 4);
            }
        }
    }
}

// ----------------------------------------------------------------------------
// BATTERY CASE DUMMY (for visualization)
// ----------------------------------------------------------------------------

module battery_case_dummy() {
    color(color_battery) {
        // Main case body
        cube([battery_case_length, battery_case_width, battery_case_height], center = true);
        
        // Wire/connector
        translate([0, battery_case_width/2 + 5, 0])
        rotate([90, 0, 0])
        cylinder(d = 4, h = 10);
    }
}

// ----------------------------------------------------------------------------
// RENDER
// ----------------------------------------------------------------------------

if ($preview) {
    // Show chosen mount style
    if (mount_style == "cradle") {
        battery_cradle_mount();
    } else if (mount_style == "clip") {
        battery_clip_mount();
    } else {
        battery_enclosed_mount();
    }
    
    // Show battery case in position
    translate([0, 0, battery_mount_wall + battery_case_height/2 + battery_mount_clearance])
    battery_case_dummy();
} else {
    // Export cradle mount by default
    battery_cradle_mount();
}

// Uncomment to export specific parts:
// battery_cradle_mount();
// battery_clip_mount();
// battery_enclosed_mount();
// battery_enclosure_lid();
